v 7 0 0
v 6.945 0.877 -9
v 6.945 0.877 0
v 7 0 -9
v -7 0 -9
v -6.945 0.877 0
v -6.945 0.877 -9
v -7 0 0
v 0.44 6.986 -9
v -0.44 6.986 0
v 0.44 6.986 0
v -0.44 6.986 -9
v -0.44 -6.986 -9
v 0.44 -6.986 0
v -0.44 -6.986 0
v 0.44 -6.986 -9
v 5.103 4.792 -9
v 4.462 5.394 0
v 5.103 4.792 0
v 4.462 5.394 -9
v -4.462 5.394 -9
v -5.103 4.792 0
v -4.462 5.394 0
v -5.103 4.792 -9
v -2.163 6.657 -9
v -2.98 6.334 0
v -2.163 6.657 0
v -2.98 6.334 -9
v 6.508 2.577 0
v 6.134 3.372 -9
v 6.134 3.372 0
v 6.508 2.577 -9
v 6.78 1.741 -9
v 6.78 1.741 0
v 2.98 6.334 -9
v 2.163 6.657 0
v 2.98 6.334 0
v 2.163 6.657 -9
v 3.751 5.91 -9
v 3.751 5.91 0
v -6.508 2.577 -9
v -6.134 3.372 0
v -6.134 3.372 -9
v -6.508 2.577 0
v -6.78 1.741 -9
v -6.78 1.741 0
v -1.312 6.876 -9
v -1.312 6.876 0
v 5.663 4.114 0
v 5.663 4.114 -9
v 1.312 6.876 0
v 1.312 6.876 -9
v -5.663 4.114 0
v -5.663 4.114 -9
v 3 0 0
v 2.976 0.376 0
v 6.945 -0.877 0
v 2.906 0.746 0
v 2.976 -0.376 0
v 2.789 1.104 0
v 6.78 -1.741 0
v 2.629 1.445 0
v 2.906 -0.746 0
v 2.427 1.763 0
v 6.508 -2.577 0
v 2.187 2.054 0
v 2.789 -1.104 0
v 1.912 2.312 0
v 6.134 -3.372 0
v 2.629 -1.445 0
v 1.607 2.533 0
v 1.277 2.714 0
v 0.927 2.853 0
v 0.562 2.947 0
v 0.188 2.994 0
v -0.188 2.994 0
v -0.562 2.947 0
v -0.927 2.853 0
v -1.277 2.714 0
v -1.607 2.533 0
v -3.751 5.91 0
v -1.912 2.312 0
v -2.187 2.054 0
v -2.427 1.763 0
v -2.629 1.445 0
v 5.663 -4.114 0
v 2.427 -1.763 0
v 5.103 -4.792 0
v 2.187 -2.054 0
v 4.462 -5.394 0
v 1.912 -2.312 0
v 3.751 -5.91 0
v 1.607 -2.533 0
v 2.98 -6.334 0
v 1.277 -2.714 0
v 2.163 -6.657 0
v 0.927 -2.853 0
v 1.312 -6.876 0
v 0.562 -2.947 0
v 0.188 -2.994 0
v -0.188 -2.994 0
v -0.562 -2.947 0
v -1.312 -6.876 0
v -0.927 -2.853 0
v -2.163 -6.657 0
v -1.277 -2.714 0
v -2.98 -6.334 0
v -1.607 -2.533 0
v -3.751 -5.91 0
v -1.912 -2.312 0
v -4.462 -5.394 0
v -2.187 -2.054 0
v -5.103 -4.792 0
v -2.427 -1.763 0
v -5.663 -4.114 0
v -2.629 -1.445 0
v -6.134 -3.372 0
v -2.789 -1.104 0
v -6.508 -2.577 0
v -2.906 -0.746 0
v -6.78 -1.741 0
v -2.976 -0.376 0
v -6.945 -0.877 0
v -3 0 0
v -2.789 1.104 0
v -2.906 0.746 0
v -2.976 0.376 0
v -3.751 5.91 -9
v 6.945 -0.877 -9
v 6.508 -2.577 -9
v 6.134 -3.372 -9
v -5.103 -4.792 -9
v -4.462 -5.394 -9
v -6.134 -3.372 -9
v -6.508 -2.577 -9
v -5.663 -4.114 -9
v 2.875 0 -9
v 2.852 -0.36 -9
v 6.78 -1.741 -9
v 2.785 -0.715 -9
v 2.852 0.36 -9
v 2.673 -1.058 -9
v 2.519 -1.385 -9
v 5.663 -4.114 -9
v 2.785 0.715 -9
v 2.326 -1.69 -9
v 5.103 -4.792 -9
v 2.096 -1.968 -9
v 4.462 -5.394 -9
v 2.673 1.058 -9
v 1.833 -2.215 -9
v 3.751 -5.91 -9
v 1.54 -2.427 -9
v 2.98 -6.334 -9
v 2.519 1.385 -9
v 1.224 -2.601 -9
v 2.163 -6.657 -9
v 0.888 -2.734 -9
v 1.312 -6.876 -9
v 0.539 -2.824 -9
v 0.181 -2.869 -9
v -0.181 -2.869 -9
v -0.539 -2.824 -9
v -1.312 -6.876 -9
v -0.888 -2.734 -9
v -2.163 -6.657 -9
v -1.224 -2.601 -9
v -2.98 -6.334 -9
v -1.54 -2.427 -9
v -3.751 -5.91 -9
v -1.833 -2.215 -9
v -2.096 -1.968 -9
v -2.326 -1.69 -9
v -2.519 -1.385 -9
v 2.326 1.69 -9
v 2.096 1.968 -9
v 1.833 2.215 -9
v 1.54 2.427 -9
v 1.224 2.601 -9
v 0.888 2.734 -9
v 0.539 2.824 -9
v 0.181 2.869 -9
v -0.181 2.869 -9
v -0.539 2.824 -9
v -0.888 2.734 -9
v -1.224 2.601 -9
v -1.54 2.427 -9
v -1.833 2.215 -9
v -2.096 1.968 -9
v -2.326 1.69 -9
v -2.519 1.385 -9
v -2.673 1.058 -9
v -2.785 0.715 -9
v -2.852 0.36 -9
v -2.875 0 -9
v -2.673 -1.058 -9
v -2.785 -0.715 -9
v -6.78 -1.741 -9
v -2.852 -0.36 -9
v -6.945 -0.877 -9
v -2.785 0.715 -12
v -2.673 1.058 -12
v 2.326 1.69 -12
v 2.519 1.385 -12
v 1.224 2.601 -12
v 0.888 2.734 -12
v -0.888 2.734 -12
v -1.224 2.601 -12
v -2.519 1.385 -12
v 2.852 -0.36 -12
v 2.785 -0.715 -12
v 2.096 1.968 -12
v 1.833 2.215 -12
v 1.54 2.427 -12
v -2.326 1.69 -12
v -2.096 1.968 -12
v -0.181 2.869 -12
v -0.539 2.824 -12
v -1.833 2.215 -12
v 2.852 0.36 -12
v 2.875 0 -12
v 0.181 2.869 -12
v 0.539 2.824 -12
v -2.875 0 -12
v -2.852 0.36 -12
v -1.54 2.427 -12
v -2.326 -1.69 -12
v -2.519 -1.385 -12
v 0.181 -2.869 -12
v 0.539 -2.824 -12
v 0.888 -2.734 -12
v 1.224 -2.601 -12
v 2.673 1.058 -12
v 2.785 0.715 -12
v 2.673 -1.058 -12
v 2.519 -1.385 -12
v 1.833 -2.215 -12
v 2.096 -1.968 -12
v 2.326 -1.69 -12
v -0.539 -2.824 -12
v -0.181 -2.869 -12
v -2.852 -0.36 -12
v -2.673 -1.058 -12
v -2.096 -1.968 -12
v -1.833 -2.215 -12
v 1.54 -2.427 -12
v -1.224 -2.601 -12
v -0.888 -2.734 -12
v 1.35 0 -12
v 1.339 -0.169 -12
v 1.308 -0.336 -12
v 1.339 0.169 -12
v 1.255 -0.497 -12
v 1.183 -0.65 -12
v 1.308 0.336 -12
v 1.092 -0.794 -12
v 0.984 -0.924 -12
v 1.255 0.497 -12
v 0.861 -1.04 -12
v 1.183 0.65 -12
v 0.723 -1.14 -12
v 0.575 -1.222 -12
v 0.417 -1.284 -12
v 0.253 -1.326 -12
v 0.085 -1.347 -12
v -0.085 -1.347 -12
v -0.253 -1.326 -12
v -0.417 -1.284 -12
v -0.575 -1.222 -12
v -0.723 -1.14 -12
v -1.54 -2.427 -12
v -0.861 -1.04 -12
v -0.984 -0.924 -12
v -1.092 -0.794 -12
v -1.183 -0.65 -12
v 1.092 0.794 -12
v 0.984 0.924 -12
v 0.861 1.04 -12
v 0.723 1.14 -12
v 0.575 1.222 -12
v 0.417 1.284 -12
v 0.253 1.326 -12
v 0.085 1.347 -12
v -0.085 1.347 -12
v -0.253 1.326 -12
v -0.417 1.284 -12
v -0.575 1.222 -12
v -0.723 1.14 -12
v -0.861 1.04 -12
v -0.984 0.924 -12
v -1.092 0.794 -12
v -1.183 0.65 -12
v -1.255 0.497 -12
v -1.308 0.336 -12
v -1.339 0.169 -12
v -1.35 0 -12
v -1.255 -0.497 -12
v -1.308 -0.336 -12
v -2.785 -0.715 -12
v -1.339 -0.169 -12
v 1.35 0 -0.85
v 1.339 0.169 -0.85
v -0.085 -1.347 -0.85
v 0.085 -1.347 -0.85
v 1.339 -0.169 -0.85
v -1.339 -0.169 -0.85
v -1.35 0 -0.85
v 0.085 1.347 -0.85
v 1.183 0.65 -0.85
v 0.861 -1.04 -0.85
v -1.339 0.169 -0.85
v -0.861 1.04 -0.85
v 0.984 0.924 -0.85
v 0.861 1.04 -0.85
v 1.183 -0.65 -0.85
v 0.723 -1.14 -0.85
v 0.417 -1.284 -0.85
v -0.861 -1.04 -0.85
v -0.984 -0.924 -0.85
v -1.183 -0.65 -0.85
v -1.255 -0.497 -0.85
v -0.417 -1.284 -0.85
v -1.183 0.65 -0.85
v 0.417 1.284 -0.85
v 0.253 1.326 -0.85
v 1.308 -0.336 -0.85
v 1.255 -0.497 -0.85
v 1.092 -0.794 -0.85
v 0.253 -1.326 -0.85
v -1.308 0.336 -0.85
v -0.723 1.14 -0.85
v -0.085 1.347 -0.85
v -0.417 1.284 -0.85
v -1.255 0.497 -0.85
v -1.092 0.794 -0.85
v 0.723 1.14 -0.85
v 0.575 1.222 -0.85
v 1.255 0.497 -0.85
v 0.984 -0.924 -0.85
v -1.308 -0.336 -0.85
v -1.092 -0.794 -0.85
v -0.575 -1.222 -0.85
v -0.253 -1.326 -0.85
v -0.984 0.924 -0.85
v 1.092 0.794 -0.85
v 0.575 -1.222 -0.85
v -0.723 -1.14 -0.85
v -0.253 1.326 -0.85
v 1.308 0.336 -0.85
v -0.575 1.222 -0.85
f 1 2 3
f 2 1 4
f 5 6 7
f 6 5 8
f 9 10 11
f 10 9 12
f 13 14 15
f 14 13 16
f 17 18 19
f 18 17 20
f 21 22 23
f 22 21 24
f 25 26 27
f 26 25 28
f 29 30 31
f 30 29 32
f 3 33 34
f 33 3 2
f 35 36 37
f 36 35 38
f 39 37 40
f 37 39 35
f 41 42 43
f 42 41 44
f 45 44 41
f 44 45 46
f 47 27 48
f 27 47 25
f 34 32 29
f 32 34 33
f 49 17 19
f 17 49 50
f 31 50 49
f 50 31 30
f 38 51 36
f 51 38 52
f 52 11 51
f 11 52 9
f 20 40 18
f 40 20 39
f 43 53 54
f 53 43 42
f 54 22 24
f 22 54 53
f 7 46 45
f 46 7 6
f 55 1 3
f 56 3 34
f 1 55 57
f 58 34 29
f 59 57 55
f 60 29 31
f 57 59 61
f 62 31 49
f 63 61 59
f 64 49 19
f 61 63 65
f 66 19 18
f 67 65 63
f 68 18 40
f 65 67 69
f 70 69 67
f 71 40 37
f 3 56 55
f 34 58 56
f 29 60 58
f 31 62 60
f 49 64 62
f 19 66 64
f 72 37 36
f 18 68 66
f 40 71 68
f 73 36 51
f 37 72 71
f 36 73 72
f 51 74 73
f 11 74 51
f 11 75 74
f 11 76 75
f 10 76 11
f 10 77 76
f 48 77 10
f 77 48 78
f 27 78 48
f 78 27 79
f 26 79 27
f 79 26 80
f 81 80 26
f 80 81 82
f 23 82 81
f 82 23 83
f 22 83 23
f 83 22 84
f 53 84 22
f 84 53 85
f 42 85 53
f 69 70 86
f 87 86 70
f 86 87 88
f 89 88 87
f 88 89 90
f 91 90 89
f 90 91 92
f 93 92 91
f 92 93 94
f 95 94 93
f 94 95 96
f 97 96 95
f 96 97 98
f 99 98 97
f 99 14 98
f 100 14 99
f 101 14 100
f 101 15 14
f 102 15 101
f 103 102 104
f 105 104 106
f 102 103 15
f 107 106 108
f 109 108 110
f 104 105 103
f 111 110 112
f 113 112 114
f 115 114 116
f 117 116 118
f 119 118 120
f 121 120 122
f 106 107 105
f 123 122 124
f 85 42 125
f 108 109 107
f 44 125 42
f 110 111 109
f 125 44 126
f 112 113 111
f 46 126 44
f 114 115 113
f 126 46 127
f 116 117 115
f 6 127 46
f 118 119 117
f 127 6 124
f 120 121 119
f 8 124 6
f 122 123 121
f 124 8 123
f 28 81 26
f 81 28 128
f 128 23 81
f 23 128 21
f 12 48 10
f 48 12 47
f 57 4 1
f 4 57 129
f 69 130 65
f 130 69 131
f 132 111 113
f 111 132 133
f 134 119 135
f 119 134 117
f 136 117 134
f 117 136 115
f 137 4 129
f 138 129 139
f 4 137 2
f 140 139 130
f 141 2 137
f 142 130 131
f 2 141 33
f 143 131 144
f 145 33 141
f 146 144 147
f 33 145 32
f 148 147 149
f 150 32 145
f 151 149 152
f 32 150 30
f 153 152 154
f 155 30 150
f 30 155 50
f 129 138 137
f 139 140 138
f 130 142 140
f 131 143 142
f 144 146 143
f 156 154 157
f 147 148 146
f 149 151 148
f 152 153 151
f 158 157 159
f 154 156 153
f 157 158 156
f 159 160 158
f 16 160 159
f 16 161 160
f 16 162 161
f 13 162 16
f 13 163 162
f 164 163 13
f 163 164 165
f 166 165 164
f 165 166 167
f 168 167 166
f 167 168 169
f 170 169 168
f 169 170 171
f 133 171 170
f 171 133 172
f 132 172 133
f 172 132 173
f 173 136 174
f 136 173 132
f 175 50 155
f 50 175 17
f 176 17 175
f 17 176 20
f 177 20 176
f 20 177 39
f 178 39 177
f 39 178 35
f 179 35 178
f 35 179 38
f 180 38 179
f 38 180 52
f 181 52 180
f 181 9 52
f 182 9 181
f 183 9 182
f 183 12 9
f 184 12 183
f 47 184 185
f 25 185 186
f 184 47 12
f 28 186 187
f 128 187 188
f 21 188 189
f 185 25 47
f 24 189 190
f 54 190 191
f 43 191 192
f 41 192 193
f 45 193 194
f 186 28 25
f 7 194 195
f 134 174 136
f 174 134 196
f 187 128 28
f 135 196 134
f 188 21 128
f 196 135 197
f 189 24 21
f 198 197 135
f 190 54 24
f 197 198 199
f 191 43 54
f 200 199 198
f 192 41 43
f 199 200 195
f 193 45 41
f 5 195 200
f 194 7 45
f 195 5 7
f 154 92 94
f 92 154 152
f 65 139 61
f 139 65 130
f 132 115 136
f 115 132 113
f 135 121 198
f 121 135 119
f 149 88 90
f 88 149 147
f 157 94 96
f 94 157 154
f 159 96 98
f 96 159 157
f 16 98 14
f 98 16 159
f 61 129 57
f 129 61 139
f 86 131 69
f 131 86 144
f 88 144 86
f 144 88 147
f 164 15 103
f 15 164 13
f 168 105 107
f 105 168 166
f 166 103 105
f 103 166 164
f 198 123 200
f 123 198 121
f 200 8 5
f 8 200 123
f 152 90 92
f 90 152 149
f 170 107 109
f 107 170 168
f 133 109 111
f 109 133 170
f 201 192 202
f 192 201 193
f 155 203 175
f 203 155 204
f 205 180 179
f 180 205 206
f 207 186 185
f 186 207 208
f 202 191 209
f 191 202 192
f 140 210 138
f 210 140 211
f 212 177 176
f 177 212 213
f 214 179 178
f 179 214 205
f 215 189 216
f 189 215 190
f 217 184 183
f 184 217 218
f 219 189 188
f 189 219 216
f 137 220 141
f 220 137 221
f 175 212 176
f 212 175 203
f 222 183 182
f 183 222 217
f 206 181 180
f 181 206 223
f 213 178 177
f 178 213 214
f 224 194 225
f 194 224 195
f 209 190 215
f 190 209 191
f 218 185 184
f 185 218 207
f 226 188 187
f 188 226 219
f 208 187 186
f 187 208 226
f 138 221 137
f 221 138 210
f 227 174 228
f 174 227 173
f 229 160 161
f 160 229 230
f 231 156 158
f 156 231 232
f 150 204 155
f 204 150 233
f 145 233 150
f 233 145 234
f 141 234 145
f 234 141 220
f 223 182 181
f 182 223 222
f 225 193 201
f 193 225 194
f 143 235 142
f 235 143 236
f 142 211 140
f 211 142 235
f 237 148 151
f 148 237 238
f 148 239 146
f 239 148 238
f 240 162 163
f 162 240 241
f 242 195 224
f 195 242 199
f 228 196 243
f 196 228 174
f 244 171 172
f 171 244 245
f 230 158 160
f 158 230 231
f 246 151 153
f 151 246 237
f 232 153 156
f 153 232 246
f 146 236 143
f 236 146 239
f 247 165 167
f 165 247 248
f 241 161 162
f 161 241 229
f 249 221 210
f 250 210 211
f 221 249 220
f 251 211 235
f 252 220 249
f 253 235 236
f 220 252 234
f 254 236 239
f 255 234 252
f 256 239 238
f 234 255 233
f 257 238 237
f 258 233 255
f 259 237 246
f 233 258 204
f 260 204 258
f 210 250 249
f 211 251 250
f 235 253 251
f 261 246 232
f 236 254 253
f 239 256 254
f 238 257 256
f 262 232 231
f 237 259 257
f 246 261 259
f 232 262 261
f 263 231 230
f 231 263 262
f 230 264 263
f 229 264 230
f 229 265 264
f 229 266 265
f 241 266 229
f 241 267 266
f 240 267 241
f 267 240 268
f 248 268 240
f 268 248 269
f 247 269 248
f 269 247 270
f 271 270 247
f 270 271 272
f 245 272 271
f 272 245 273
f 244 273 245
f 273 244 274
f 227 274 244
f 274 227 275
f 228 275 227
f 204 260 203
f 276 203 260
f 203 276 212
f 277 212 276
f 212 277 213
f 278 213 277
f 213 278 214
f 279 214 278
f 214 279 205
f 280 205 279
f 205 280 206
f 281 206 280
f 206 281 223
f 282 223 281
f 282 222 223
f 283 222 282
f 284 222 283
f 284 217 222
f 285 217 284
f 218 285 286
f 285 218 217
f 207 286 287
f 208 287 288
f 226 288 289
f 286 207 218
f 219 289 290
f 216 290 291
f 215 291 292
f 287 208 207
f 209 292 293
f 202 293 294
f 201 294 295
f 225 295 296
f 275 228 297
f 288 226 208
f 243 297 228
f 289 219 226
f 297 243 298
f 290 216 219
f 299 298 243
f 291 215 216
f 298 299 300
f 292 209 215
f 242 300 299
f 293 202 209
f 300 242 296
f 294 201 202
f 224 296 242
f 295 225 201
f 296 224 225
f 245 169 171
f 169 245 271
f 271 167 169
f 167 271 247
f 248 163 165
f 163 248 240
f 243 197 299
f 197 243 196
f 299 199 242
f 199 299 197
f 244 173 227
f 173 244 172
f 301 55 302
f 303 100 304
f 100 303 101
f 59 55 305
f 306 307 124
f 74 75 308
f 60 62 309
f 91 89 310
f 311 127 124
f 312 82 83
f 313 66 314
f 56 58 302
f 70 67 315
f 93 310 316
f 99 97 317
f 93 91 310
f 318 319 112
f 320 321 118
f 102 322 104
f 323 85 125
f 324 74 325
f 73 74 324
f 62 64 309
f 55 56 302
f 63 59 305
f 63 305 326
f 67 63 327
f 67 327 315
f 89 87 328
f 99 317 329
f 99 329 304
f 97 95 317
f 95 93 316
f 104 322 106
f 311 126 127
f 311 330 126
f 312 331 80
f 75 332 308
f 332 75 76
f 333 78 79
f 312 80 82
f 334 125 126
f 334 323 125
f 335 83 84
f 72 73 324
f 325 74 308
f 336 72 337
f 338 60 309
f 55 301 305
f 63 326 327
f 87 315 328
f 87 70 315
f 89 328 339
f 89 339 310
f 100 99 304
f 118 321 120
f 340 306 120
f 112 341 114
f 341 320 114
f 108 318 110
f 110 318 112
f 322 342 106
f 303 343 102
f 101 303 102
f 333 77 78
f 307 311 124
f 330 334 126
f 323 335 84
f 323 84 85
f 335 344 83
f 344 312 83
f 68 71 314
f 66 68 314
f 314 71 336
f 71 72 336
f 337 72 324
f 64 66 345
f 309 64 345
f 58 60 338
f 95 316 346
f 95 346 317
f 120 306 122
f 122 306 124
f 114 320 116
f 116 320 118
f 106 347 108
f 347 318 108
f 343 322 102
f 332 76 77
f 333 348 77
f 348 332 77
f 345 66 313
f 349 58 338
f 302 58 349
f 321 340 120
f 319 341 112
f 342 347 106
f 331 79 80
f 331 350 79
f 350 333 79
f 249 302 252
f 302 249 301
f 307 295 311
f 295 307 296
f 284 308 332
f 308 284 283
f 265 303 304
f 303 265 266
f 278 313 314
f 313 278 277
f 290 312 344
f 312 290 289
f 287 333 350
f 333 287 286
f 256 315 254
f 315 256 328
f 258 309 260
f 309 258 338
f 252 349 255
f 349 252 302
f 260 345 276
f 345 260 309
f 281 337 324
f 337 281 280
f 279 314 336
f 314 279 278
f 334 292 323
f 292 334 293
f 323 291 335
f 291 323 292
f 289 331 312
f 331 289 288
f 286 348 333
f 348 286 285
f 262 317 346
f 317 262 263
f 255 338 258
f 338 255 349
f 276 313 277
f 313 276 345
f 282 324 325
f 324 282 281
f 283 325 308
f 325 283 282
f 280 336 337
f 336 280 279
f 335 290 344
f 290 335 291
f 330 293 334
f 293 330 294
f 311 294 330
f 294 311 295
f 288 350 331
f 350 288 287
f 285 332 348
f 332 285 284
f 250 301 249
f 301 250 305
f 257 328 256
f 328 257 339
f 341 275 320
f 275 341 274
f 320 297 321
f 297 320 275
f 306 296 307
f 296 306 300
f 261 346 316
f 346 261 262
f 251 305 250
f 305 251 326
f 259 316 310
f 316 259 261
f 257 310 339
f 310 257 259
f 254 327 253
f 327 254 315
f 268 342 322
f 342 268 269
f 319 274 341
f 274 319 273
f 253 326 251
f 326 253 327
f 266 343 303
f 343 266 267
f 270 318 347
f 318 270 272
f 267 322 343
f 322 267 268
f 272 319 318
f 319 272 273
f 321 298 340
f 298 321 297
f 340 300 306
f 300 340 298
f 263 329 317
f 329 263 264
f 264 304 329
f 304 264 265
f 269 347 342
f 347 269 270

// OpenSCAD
$fn = 50;


difference() {
	union() {
		translate(v = [0, 0, -9.0000000000]) {
			cylinder(h = 9, r = 7.0000000000);
		}
		translate(v = [0, 0, -12.0000000000]) {
			cylinder(h = 12, r = 2.8750000000);
		}
	}
	union() {
		translate(v = [0, 0, 0]) {
			rotate(a = [0, 0, 0]) {
				difference() {
					union() {
						translate(v = [0, 0, -12.0000000000]) {
							cylinder(h = 12, r = 1.0000000000);
						}
						translate(v = [0, 0, -0.8500000000]) {
							cylinder(h = 0.8500000000, r1 = 1.3500000000, r2 = 3.0000000000);
						}
						translate(v = [0, 0, -12.0000000000]) {
							cylinder(h = 12, r = 1.3500000000);
						}
						translate(v = [0, 0, -12.0000000000]) {
							cylinder(h = 12, r = 1.0000000000);
						}
					}
					union();
				}
			}
		}
	}
}
